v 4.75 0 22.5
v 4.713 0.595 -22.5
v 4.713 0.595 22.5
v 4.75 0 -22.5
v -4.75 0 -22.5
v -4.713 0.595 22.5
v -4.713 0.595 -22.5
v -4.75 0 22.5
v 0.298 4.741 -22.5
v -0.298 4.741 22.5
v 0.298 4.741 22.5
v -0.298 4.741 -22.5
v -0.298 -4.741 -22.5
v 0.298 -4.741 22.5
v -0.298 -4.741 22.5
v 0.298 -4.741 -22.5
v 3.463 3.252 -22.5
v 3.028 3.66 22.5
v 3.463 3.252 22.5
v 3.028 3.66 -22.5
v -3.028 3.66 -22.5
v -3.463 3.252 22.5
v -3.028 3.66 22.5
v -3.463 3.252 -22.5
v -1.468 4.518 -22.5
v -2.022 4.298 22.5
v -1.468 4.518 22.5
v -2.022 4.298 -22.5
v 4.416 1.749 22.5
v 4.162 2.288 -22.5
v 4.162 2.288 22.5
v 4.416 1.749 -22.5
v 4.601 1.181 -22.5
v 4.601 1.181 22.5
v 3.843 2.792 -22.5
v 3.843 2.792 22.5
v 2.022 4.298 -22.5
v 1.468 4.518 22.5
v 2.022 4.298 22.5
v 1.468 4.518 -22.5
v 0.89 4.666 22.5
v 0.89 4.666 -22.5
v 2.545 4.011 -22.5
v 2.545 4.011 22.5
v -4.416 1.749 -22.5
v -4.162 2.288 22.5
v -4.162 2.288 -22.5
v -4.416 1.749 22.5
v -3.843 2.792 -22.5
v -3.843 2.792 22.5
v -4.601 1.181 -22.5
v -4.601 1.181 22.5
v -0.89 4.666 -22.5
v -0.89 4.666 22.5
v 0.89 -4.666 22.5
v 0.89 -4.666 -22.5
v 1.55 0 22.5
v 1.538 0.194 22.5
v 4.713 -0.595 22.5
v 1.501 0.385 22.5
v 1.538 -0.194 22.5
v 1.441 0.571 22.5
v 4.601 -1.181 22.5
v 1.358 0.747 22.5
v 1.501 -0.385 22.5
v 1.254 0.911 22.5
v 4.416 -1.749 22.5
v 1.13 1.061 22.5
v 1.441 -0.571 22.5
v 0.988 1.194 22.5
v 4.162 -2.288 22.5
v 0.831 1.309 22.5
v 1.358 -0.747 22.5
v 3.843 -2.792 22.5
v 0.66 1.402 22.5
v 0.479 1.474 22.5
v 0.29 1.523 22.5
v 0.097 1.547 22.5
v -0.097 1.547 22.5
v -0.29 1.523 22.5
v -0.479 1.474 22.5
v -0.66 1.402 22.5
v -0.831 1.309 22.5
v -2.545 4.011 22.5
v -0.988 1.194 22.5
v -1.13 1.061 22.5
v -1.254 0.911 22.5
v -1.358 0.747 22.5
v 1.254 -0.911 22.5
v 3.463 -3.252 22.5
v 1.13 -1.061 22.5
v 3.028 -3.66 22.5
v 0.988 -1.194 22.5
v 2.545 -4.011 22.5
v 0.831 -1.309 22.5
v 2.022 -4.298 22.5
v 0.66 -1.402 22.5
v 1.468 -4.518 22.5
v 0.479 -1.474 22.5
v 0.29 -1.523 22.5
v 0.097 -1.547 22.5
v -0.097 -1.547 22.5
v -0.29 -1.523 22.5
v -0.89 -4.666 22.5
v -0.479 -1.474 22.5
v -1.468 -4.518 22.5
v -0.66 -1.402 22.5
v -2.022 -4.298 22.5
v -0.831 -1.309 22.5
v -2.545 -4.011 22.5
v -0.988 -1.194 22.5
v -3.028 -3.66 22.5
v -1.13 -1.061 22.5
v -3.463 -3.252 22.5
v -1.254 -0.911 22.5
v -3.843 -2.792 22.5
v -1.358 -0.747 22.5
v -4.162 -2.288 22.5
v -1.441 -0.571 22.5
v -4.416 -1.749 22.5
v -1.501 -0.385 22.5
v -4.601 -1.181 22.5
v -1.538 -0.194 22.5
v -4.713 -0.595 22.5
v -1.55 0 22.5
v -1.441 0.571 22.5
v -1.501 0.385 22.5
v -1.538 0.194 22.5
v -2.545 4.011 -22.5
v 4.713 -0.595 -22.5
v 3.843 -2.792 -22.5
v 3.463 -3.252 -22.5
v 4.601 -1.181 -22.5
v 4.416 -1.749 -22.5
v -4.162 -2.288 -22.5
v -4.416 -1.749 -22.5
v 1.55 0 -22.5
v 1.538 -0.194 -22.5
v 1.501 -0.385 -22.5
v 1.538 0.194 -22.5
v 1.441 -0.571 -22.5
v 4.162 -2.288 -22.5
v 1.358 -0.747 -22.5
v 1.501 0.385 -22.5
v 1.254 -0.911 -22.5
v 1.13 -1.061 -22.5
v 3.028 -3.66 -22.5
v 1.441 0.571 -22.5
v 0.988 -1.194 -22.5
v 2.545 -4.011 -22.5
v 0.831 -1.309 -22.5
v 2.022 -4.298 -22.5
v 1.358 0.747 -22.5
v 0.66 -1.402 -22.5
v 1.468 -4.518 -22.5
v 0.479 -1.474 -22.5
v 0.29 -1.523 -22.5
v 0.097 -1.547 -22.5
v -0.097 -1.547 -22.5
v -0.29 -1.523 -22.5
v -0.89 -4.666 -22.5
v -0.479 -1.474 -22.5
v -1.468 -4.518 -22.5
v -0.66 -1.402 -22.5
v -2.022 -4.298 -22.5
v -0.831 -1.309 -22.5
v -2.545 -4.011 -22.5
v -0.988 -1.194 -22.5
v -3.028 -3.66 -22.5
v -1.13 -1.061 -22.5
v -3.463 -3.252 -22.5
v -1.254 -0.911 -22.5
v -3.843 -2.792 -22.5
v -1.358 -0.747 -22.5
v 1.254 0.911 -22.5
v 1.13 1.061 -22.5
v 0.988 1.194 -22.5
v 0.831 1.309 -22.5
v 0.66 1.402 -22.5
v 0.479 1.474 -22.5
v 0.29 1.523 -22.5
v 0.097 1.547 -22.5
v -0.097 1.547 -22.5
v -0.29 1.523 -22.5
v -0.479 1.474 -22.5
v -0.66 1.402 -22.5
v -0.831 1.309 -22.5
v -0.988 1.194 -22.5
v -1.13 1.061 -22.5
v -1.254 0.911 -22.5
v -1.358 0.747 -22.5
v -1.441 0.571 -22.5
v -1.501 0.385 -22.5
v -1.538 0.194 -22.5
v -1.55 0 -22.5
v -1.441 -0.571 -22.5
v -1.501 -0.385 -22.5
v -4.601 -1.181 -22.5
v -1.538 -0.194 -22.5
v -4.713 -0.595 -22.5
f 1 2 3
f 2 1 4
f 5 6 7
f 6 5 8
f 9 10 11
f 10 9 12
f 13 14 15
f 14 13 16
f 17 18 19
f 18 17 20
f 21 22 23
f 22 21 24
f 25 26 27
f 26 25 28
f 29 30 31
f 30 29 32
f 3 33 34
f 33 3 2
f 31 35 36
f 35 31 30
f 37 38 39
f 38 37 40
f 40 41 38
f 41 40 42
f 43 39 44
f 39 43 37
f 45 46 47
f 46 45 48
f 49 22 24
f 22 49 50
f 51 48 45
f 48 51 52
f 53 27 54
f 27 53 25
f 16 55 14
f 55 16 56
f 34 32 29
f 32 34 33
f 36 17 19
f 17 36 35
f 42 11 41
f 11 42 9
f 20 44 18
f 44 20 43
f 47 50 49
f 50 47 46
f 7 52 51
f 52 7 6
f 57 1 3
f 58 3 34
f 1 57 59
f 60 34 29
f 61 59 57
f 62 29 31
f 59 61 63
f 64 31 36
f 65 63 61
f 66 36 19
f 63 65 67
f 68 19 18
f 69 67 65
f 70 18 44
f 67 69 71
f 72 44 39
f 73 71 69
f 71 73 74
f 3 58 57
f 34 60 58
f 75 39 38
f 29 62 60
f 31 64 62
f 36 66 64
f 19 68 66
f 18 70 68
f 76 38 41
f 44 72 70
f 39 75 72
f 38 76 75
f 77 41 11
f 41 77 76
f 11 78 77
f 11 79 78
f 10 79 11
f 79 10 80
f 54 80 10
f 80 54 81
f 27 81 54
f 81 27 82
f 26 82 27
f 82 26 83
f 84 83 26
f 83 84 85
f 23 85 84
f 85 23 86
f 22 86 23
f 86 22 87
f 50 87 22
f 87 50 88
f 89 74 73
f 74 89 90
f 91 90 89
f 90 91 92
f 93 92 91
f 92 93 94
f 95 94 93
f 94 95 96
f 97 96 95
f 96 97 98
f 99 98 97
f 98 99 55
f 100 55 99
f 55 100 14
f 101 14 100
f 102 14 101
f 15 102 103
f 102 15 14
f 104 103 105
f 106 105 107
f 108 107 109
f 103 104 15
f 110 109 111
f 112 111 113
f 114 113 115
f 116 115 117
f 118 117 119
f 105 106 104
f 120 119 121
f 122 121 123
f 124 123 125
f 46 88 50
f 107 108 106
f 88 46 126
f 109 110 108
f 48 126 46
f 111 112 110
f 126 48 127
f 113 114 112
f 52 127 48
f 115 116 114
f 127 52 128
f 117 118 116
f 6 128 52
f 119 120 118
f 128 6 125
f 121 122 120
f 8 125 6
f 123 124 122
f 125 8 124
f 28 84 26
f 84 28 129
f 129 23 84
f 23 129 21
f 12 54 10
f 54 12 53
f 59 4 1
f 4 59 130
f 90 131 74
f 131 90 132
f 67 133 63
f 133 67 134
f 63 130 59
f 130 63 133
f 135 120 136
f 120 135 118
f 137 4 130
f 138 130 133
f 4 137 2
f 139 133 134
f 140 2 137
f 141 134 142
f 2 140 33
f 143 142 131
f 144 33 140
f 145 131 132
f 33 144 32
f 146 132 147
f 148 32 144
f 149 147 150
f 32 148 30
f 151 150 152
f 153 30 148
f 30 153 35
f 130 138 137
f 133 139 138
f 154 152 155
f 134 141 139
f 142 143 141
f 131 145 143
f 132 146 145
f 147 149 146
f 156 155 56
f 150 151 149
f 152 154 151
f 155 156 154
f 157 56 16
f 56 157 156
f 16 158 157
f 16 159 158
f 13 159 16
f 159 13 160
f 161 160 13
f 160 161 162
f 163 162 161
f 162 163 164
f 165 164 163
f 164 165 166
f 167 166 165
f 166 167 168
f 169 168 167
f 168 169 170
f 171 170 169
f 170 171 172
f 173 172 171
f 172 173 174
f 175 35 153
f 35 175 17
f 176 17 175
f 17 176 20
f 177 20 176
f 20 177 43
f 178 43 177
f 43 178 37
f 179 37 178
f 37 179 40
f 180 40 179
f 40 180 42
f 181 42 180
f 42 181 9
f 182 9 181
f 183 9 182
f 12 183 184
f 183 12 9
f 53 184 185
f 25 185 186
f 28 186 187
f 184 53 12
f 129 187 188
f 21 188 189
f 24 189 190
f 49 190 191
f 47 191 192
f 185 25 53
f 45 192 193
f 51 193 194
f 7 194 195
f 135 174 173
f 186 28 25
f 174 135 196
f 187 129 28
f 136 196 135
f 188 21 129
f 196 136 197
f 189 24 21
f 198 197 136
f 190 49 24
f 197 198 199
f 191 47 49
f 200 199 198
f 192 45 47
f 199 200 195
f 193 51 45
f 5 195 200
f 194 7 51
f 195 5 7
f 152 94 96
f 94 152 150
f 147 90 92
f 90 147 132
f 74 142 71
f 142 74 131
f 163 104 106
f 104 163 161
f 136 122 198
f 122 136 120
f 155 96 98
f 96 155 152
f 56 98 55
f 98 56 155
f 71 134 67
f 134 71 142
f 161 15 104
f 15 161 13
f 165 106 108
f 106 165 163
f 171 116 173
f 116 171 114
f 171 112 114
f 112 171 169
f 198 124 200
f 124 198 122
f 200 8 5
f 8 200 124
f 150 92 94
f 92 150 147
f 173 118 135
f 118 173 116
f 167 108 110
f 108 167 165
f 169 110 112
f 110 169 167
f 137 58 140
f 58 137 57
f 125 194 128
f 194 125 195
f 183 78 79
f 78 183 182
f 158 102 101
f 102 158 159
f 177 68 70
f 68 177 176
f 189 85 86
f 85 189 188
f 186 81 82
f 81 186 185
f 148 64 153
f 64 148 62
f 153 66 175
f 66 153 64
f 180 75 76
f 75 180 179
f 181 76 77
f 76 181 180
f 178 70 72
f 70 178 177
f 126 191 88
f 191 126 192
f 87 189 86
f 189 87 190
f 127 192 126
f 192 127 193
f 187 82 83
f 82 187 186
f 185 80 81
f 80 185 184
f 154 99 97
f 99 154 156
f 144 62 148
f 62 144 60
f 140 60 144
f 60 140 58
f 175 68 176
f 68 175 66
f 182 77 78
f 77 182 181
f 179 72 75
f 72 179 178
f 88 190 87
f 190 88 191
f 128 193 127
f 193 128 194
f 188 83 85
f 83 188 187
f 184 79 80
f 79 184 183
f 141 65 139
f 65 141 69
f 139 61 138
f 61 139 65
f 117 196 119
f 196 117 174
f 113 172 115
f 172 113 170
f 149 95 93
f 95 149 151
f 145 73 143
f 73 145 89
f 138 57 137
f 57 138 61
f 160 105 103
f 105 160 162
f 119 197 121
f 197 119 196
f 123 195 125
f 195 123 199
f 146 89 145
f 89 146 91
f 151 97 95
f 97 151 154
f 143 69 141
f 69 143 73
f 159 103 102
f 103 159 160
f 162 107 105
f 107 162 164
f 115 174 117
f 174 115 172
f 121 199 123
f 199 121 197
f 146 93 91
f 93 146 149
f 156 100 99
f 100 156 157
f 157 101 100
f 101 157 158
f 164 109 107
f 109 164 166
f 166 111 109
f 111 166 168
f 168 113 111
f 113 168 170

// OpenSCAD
$fn = 50;


difference() {
	union() {
		translate(v = [0, 0, -22.5000000000]) {
			cylinder(h = 45, r = 4.7500000000);
		}
	}
	union() {
		translate(v = [0, 0, -100.0000000000]) {
			cylinder(h = 200, r = 1.5500000000);
		}
	}
}
